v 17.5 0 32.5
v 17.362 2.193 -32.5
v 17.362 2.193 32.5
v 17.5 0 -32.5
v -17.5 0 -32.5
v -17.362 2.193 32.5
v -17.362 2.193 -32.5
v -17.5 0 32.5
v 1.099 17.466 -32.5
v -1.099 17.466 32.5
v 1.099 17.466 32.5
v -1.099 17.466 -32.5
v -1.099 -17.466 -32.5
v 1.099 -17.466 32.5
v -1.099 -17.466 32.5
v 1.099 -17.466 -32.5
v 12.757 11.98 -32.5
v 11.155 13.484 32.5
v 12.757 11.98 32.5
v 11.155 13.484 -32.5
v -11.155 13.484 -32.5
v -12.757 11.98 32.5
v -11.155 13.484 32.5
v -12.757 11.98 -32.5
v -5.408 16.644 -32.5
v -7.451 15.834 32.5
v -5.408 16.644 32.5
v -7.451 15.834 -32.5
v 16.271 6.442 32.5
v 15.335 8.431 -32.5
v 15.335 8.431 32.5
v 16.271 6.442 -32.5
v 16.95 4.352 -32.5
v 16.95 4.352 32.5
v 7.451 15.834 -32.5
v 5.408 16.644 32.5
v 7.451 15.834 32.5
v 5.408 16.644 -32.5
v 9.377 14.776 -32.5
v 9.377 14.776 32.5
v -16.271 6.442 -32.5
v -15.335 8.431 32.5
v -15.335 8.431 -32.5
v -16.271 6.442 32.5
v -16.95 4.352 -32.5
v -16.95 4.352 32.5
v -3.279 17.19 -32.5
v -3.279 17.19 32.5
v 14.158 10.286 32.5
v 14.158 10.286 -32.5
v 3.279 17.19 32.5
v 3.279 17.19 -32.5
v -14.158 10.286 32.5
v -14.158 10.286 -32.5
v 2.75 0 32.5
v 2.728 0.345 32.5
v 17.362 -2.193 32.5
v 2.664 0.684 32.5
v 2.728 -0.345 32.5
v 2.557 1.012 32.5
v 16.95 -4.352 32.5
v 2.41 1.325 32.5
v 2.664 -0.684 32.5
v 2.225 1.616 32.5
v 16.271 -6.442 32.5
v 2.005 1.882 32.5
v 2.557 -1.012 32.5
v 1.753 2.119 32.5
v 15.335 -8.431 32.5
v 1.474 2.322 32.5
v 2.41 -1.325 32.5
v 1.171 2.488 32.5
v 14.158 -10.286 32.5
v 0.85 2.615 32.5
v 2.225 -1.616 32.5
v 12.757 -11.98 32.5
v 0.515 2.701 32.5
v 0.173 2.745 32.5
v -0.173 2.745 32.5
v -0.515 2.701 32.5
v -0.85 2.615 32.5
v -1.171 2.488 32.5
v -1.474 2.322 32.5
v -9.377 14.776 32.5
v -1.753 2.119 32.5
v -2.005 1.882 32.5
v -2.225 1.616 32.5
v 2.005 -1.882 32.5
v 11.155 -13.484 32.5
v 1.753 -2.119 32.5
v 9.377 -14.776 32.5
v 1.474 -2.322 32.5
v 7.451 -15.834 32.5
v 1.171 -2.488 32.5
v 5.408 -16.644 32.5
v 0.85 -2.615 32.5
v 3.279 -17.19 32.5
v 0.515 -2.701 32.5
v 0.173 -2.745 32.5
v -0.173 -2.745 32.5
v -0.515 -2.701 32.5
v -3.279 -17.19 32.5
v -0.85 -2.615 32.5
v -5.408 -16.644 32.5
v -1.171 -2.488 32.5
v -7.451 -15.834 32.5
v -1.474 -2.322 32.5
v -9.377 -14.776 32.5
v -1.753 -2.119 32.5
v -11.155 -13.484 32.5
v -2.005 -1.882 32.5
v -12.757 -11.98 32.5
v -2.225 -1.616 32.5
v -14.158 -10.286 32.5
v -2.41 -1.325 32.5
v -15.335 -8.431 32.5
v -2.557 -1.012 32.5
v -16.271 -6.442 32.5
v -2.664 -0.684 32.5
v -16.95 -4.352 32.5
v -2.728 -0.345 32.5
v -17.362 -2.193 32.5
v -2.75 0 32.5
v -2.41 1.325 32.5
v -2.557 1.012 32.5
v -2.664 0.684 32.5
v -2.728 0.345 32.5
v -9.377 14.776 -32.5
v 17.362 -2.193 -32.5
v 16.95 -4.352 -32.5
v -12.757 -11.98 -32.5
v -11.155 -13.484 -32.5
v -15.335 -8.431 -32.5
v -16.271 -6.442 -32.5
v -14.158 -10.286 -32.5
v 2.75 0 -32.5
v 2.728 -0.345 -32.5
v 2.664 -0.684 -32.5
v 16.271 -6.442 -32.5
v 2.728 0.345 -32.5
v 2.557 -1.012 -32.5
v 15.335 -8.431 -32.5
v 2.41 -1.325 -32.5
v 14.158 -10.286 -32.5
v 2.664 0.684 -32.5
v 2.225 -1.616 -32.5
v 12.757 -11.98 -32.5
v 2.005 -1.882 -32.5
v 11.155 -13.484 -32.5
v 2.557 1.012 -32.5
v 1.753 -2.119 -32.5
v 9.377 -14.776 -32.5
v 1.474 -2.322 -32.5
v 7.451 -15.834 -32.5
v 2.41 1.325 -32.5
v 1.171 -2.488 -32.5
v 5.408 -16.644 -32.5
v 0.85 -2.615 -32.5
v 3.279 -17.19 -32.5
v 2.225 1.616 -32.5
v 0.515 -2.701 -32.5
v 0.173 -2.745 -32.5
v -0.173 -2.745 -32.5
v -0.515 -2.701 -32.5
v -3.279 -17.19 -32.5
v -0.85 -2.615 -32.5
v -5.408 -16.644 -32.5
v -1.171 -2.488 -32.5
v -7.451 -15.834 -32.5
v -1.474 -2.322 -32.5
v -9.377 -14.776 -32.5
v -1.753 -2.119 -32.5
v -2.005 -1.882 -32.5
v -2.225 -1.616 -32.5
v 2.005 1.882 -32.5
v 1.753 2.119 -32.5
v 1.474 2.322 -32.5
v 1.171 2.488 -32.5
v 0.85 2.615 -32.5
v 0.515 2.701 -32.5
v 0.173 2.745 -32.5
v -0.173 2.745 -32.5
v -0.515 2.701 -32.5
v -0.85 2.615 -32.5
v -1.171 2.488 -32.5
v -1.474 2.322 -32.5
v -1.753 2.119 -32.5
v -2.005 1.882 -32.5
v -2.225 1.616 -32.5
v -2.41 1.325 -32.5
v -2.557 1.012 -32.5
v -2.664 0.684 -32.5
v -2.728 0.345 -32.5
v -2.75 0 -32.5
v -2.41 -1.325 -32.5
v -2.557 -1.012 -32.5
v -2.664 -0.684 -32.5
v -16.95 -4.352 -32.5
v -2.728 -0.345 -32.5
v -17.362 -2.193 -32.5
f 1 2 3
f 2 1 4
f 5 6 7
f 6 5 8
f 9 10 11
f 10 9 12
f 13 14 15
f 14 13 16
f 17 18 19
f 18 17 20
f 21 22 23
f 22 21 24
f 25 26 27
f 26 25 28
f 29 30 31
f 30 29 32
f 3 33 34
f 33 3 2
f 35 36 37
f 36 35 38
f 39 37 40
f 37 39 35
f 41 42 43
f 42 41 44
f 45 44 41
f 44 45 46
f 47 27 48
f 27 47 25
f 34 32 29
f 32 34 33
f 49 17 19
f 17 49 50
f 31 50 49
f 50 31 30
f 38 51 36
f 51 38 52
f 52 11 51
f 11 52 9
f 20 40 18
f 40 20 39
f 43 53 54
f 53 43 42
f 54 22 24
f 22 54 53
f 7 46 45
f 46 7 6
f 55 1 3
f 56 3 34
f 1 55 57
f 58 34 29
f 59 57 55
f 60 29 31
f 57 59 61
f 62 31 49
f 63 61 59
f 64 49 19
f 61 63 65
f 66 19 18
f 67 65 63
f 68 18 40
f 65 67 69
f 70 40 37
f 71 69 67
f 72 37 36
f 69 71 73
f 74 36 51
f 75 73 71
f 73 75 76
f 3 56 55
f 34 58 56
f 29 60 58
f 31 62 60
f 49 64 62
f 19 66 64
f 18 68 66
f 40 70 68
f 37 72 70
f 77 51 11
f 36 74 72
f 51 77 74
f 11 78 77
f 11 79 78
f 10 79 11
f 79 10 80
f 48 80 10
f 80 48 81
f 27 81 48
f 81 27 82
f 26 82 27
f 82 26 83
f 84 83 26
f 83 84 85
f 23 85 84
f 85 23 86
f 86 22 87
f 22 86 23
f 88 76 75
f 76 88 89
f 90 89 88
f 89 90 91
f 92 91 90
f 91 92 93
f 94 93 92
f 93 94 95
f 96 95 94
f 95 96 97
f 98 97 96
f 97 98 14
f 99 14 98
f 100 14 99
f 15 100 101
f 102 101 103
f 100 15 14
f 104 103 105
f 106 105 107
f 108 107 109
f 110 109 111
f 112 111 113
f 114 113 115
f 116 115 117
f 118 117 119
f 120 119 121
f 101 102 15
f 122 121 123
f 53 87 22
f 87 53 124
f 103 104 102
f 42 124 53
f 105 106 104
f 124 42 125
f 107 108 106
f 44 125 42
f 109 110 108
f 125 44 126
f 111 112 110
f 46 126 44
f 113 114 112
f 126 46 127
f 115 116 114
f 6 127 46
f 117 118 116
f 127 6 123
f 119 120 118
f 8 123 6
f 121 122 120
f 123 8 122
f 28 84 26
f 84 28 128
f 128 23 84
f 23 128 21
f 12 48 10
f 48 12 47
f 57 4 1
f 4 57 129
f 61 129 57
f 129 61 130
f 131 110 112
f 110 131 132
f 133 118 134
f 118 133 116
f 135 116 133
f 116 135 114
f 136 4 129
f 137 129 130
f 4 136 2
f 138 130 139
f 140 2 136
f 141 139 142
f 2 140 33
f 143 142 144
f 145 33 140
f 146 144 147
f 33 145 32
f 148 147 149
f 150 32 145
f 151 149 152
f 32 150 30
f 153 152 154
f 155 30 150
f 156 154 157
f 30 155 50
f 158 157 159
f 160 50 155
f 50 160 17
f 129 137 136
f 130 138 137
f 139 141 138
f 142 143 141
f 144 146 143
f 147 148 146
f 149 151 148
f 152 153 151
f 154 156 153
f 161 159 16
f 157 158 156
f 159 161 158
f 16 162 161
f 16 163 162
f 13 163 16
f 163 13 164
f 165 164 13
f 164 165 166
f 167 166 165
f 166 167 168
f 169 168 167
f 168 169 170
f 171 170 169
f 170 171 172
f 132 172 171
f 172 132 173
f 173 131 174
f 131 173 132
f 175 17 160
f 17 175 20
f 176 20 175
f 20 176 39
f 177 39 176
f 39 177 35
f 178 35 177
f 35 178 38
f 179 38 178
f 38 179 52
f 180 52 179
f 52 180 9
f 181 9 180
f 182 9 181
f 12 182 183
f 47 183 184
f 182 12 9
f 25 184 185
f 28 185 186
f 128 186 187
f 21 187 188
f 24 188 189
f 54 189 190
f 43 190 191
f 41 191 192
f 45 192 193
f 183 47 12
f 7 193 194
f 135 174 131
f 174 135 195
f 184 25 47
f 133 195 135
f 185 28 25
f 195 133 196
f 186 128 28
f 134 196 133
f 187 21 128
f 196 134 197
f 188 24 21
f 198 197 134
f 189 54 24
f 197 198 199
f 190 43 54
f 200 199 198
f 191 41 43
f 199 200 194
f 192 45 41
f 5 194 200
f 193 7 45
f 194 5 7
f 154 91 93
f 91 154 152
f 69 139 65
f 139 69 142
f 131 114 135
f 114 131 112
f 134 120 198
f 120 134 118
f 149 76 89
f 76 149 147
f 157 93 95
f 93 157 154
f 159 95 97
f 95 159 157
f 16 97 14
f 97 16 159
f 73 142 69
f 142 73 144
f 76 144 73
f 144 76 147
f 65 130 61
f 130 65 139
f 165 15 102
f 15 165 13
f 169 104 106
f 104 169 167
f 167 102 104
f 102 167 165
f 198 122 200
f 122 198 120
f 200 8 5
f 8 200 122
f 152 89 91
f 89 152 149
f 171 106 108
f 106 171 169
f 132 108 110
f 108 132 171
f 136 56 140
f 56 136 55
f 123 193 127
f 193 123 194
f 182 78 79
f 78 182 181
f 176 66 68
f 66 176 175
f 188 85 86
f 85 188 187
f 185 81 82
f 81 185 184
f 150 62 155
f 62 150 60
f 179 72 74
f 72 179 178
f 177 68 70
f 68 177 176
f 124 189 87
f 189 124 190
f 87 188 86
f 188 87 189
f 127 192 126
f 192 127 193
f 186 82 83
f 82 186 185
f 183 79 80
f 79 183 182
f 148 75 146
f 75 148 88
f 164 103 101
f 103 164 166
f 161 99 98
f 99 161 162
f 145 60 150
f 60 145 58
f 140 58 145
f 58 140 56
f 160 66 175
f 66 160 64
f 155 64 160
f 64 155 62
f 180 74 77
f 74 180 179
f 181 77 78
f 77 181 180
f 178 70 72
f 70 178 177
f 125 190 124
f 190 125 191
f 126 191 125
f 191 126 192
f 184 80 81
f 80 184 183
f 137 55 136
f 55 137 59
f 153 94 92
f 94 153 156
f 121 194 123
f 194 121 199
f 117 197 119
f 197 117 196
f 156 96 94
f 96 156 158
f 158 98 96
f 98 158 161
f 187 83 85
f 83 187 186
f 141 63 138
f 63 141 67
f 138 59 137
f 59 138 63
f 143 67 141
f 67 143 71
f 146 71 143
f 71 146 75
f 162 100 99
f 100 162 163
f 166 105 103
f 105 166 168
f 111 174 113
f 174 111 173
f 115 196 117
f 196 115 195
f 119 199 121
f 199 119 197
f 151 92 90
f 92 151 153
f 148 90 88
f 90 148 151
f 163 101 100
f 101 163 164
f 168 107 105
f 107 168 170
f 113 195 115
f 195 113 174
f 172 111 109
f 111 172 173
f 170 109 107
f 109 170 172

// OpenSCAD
$fn = 50;


difference() {
	union() {
		translate(v = [0, 0, -32.5000000000]) {
			cylinder(h = 65, r = 17.5000000000);
		}
	}
	union() {
		translate(v = [0, 0, -100.0000000000]) {
			cylinder(h = 200, r = 2.7500000000);
		}
	}
}
